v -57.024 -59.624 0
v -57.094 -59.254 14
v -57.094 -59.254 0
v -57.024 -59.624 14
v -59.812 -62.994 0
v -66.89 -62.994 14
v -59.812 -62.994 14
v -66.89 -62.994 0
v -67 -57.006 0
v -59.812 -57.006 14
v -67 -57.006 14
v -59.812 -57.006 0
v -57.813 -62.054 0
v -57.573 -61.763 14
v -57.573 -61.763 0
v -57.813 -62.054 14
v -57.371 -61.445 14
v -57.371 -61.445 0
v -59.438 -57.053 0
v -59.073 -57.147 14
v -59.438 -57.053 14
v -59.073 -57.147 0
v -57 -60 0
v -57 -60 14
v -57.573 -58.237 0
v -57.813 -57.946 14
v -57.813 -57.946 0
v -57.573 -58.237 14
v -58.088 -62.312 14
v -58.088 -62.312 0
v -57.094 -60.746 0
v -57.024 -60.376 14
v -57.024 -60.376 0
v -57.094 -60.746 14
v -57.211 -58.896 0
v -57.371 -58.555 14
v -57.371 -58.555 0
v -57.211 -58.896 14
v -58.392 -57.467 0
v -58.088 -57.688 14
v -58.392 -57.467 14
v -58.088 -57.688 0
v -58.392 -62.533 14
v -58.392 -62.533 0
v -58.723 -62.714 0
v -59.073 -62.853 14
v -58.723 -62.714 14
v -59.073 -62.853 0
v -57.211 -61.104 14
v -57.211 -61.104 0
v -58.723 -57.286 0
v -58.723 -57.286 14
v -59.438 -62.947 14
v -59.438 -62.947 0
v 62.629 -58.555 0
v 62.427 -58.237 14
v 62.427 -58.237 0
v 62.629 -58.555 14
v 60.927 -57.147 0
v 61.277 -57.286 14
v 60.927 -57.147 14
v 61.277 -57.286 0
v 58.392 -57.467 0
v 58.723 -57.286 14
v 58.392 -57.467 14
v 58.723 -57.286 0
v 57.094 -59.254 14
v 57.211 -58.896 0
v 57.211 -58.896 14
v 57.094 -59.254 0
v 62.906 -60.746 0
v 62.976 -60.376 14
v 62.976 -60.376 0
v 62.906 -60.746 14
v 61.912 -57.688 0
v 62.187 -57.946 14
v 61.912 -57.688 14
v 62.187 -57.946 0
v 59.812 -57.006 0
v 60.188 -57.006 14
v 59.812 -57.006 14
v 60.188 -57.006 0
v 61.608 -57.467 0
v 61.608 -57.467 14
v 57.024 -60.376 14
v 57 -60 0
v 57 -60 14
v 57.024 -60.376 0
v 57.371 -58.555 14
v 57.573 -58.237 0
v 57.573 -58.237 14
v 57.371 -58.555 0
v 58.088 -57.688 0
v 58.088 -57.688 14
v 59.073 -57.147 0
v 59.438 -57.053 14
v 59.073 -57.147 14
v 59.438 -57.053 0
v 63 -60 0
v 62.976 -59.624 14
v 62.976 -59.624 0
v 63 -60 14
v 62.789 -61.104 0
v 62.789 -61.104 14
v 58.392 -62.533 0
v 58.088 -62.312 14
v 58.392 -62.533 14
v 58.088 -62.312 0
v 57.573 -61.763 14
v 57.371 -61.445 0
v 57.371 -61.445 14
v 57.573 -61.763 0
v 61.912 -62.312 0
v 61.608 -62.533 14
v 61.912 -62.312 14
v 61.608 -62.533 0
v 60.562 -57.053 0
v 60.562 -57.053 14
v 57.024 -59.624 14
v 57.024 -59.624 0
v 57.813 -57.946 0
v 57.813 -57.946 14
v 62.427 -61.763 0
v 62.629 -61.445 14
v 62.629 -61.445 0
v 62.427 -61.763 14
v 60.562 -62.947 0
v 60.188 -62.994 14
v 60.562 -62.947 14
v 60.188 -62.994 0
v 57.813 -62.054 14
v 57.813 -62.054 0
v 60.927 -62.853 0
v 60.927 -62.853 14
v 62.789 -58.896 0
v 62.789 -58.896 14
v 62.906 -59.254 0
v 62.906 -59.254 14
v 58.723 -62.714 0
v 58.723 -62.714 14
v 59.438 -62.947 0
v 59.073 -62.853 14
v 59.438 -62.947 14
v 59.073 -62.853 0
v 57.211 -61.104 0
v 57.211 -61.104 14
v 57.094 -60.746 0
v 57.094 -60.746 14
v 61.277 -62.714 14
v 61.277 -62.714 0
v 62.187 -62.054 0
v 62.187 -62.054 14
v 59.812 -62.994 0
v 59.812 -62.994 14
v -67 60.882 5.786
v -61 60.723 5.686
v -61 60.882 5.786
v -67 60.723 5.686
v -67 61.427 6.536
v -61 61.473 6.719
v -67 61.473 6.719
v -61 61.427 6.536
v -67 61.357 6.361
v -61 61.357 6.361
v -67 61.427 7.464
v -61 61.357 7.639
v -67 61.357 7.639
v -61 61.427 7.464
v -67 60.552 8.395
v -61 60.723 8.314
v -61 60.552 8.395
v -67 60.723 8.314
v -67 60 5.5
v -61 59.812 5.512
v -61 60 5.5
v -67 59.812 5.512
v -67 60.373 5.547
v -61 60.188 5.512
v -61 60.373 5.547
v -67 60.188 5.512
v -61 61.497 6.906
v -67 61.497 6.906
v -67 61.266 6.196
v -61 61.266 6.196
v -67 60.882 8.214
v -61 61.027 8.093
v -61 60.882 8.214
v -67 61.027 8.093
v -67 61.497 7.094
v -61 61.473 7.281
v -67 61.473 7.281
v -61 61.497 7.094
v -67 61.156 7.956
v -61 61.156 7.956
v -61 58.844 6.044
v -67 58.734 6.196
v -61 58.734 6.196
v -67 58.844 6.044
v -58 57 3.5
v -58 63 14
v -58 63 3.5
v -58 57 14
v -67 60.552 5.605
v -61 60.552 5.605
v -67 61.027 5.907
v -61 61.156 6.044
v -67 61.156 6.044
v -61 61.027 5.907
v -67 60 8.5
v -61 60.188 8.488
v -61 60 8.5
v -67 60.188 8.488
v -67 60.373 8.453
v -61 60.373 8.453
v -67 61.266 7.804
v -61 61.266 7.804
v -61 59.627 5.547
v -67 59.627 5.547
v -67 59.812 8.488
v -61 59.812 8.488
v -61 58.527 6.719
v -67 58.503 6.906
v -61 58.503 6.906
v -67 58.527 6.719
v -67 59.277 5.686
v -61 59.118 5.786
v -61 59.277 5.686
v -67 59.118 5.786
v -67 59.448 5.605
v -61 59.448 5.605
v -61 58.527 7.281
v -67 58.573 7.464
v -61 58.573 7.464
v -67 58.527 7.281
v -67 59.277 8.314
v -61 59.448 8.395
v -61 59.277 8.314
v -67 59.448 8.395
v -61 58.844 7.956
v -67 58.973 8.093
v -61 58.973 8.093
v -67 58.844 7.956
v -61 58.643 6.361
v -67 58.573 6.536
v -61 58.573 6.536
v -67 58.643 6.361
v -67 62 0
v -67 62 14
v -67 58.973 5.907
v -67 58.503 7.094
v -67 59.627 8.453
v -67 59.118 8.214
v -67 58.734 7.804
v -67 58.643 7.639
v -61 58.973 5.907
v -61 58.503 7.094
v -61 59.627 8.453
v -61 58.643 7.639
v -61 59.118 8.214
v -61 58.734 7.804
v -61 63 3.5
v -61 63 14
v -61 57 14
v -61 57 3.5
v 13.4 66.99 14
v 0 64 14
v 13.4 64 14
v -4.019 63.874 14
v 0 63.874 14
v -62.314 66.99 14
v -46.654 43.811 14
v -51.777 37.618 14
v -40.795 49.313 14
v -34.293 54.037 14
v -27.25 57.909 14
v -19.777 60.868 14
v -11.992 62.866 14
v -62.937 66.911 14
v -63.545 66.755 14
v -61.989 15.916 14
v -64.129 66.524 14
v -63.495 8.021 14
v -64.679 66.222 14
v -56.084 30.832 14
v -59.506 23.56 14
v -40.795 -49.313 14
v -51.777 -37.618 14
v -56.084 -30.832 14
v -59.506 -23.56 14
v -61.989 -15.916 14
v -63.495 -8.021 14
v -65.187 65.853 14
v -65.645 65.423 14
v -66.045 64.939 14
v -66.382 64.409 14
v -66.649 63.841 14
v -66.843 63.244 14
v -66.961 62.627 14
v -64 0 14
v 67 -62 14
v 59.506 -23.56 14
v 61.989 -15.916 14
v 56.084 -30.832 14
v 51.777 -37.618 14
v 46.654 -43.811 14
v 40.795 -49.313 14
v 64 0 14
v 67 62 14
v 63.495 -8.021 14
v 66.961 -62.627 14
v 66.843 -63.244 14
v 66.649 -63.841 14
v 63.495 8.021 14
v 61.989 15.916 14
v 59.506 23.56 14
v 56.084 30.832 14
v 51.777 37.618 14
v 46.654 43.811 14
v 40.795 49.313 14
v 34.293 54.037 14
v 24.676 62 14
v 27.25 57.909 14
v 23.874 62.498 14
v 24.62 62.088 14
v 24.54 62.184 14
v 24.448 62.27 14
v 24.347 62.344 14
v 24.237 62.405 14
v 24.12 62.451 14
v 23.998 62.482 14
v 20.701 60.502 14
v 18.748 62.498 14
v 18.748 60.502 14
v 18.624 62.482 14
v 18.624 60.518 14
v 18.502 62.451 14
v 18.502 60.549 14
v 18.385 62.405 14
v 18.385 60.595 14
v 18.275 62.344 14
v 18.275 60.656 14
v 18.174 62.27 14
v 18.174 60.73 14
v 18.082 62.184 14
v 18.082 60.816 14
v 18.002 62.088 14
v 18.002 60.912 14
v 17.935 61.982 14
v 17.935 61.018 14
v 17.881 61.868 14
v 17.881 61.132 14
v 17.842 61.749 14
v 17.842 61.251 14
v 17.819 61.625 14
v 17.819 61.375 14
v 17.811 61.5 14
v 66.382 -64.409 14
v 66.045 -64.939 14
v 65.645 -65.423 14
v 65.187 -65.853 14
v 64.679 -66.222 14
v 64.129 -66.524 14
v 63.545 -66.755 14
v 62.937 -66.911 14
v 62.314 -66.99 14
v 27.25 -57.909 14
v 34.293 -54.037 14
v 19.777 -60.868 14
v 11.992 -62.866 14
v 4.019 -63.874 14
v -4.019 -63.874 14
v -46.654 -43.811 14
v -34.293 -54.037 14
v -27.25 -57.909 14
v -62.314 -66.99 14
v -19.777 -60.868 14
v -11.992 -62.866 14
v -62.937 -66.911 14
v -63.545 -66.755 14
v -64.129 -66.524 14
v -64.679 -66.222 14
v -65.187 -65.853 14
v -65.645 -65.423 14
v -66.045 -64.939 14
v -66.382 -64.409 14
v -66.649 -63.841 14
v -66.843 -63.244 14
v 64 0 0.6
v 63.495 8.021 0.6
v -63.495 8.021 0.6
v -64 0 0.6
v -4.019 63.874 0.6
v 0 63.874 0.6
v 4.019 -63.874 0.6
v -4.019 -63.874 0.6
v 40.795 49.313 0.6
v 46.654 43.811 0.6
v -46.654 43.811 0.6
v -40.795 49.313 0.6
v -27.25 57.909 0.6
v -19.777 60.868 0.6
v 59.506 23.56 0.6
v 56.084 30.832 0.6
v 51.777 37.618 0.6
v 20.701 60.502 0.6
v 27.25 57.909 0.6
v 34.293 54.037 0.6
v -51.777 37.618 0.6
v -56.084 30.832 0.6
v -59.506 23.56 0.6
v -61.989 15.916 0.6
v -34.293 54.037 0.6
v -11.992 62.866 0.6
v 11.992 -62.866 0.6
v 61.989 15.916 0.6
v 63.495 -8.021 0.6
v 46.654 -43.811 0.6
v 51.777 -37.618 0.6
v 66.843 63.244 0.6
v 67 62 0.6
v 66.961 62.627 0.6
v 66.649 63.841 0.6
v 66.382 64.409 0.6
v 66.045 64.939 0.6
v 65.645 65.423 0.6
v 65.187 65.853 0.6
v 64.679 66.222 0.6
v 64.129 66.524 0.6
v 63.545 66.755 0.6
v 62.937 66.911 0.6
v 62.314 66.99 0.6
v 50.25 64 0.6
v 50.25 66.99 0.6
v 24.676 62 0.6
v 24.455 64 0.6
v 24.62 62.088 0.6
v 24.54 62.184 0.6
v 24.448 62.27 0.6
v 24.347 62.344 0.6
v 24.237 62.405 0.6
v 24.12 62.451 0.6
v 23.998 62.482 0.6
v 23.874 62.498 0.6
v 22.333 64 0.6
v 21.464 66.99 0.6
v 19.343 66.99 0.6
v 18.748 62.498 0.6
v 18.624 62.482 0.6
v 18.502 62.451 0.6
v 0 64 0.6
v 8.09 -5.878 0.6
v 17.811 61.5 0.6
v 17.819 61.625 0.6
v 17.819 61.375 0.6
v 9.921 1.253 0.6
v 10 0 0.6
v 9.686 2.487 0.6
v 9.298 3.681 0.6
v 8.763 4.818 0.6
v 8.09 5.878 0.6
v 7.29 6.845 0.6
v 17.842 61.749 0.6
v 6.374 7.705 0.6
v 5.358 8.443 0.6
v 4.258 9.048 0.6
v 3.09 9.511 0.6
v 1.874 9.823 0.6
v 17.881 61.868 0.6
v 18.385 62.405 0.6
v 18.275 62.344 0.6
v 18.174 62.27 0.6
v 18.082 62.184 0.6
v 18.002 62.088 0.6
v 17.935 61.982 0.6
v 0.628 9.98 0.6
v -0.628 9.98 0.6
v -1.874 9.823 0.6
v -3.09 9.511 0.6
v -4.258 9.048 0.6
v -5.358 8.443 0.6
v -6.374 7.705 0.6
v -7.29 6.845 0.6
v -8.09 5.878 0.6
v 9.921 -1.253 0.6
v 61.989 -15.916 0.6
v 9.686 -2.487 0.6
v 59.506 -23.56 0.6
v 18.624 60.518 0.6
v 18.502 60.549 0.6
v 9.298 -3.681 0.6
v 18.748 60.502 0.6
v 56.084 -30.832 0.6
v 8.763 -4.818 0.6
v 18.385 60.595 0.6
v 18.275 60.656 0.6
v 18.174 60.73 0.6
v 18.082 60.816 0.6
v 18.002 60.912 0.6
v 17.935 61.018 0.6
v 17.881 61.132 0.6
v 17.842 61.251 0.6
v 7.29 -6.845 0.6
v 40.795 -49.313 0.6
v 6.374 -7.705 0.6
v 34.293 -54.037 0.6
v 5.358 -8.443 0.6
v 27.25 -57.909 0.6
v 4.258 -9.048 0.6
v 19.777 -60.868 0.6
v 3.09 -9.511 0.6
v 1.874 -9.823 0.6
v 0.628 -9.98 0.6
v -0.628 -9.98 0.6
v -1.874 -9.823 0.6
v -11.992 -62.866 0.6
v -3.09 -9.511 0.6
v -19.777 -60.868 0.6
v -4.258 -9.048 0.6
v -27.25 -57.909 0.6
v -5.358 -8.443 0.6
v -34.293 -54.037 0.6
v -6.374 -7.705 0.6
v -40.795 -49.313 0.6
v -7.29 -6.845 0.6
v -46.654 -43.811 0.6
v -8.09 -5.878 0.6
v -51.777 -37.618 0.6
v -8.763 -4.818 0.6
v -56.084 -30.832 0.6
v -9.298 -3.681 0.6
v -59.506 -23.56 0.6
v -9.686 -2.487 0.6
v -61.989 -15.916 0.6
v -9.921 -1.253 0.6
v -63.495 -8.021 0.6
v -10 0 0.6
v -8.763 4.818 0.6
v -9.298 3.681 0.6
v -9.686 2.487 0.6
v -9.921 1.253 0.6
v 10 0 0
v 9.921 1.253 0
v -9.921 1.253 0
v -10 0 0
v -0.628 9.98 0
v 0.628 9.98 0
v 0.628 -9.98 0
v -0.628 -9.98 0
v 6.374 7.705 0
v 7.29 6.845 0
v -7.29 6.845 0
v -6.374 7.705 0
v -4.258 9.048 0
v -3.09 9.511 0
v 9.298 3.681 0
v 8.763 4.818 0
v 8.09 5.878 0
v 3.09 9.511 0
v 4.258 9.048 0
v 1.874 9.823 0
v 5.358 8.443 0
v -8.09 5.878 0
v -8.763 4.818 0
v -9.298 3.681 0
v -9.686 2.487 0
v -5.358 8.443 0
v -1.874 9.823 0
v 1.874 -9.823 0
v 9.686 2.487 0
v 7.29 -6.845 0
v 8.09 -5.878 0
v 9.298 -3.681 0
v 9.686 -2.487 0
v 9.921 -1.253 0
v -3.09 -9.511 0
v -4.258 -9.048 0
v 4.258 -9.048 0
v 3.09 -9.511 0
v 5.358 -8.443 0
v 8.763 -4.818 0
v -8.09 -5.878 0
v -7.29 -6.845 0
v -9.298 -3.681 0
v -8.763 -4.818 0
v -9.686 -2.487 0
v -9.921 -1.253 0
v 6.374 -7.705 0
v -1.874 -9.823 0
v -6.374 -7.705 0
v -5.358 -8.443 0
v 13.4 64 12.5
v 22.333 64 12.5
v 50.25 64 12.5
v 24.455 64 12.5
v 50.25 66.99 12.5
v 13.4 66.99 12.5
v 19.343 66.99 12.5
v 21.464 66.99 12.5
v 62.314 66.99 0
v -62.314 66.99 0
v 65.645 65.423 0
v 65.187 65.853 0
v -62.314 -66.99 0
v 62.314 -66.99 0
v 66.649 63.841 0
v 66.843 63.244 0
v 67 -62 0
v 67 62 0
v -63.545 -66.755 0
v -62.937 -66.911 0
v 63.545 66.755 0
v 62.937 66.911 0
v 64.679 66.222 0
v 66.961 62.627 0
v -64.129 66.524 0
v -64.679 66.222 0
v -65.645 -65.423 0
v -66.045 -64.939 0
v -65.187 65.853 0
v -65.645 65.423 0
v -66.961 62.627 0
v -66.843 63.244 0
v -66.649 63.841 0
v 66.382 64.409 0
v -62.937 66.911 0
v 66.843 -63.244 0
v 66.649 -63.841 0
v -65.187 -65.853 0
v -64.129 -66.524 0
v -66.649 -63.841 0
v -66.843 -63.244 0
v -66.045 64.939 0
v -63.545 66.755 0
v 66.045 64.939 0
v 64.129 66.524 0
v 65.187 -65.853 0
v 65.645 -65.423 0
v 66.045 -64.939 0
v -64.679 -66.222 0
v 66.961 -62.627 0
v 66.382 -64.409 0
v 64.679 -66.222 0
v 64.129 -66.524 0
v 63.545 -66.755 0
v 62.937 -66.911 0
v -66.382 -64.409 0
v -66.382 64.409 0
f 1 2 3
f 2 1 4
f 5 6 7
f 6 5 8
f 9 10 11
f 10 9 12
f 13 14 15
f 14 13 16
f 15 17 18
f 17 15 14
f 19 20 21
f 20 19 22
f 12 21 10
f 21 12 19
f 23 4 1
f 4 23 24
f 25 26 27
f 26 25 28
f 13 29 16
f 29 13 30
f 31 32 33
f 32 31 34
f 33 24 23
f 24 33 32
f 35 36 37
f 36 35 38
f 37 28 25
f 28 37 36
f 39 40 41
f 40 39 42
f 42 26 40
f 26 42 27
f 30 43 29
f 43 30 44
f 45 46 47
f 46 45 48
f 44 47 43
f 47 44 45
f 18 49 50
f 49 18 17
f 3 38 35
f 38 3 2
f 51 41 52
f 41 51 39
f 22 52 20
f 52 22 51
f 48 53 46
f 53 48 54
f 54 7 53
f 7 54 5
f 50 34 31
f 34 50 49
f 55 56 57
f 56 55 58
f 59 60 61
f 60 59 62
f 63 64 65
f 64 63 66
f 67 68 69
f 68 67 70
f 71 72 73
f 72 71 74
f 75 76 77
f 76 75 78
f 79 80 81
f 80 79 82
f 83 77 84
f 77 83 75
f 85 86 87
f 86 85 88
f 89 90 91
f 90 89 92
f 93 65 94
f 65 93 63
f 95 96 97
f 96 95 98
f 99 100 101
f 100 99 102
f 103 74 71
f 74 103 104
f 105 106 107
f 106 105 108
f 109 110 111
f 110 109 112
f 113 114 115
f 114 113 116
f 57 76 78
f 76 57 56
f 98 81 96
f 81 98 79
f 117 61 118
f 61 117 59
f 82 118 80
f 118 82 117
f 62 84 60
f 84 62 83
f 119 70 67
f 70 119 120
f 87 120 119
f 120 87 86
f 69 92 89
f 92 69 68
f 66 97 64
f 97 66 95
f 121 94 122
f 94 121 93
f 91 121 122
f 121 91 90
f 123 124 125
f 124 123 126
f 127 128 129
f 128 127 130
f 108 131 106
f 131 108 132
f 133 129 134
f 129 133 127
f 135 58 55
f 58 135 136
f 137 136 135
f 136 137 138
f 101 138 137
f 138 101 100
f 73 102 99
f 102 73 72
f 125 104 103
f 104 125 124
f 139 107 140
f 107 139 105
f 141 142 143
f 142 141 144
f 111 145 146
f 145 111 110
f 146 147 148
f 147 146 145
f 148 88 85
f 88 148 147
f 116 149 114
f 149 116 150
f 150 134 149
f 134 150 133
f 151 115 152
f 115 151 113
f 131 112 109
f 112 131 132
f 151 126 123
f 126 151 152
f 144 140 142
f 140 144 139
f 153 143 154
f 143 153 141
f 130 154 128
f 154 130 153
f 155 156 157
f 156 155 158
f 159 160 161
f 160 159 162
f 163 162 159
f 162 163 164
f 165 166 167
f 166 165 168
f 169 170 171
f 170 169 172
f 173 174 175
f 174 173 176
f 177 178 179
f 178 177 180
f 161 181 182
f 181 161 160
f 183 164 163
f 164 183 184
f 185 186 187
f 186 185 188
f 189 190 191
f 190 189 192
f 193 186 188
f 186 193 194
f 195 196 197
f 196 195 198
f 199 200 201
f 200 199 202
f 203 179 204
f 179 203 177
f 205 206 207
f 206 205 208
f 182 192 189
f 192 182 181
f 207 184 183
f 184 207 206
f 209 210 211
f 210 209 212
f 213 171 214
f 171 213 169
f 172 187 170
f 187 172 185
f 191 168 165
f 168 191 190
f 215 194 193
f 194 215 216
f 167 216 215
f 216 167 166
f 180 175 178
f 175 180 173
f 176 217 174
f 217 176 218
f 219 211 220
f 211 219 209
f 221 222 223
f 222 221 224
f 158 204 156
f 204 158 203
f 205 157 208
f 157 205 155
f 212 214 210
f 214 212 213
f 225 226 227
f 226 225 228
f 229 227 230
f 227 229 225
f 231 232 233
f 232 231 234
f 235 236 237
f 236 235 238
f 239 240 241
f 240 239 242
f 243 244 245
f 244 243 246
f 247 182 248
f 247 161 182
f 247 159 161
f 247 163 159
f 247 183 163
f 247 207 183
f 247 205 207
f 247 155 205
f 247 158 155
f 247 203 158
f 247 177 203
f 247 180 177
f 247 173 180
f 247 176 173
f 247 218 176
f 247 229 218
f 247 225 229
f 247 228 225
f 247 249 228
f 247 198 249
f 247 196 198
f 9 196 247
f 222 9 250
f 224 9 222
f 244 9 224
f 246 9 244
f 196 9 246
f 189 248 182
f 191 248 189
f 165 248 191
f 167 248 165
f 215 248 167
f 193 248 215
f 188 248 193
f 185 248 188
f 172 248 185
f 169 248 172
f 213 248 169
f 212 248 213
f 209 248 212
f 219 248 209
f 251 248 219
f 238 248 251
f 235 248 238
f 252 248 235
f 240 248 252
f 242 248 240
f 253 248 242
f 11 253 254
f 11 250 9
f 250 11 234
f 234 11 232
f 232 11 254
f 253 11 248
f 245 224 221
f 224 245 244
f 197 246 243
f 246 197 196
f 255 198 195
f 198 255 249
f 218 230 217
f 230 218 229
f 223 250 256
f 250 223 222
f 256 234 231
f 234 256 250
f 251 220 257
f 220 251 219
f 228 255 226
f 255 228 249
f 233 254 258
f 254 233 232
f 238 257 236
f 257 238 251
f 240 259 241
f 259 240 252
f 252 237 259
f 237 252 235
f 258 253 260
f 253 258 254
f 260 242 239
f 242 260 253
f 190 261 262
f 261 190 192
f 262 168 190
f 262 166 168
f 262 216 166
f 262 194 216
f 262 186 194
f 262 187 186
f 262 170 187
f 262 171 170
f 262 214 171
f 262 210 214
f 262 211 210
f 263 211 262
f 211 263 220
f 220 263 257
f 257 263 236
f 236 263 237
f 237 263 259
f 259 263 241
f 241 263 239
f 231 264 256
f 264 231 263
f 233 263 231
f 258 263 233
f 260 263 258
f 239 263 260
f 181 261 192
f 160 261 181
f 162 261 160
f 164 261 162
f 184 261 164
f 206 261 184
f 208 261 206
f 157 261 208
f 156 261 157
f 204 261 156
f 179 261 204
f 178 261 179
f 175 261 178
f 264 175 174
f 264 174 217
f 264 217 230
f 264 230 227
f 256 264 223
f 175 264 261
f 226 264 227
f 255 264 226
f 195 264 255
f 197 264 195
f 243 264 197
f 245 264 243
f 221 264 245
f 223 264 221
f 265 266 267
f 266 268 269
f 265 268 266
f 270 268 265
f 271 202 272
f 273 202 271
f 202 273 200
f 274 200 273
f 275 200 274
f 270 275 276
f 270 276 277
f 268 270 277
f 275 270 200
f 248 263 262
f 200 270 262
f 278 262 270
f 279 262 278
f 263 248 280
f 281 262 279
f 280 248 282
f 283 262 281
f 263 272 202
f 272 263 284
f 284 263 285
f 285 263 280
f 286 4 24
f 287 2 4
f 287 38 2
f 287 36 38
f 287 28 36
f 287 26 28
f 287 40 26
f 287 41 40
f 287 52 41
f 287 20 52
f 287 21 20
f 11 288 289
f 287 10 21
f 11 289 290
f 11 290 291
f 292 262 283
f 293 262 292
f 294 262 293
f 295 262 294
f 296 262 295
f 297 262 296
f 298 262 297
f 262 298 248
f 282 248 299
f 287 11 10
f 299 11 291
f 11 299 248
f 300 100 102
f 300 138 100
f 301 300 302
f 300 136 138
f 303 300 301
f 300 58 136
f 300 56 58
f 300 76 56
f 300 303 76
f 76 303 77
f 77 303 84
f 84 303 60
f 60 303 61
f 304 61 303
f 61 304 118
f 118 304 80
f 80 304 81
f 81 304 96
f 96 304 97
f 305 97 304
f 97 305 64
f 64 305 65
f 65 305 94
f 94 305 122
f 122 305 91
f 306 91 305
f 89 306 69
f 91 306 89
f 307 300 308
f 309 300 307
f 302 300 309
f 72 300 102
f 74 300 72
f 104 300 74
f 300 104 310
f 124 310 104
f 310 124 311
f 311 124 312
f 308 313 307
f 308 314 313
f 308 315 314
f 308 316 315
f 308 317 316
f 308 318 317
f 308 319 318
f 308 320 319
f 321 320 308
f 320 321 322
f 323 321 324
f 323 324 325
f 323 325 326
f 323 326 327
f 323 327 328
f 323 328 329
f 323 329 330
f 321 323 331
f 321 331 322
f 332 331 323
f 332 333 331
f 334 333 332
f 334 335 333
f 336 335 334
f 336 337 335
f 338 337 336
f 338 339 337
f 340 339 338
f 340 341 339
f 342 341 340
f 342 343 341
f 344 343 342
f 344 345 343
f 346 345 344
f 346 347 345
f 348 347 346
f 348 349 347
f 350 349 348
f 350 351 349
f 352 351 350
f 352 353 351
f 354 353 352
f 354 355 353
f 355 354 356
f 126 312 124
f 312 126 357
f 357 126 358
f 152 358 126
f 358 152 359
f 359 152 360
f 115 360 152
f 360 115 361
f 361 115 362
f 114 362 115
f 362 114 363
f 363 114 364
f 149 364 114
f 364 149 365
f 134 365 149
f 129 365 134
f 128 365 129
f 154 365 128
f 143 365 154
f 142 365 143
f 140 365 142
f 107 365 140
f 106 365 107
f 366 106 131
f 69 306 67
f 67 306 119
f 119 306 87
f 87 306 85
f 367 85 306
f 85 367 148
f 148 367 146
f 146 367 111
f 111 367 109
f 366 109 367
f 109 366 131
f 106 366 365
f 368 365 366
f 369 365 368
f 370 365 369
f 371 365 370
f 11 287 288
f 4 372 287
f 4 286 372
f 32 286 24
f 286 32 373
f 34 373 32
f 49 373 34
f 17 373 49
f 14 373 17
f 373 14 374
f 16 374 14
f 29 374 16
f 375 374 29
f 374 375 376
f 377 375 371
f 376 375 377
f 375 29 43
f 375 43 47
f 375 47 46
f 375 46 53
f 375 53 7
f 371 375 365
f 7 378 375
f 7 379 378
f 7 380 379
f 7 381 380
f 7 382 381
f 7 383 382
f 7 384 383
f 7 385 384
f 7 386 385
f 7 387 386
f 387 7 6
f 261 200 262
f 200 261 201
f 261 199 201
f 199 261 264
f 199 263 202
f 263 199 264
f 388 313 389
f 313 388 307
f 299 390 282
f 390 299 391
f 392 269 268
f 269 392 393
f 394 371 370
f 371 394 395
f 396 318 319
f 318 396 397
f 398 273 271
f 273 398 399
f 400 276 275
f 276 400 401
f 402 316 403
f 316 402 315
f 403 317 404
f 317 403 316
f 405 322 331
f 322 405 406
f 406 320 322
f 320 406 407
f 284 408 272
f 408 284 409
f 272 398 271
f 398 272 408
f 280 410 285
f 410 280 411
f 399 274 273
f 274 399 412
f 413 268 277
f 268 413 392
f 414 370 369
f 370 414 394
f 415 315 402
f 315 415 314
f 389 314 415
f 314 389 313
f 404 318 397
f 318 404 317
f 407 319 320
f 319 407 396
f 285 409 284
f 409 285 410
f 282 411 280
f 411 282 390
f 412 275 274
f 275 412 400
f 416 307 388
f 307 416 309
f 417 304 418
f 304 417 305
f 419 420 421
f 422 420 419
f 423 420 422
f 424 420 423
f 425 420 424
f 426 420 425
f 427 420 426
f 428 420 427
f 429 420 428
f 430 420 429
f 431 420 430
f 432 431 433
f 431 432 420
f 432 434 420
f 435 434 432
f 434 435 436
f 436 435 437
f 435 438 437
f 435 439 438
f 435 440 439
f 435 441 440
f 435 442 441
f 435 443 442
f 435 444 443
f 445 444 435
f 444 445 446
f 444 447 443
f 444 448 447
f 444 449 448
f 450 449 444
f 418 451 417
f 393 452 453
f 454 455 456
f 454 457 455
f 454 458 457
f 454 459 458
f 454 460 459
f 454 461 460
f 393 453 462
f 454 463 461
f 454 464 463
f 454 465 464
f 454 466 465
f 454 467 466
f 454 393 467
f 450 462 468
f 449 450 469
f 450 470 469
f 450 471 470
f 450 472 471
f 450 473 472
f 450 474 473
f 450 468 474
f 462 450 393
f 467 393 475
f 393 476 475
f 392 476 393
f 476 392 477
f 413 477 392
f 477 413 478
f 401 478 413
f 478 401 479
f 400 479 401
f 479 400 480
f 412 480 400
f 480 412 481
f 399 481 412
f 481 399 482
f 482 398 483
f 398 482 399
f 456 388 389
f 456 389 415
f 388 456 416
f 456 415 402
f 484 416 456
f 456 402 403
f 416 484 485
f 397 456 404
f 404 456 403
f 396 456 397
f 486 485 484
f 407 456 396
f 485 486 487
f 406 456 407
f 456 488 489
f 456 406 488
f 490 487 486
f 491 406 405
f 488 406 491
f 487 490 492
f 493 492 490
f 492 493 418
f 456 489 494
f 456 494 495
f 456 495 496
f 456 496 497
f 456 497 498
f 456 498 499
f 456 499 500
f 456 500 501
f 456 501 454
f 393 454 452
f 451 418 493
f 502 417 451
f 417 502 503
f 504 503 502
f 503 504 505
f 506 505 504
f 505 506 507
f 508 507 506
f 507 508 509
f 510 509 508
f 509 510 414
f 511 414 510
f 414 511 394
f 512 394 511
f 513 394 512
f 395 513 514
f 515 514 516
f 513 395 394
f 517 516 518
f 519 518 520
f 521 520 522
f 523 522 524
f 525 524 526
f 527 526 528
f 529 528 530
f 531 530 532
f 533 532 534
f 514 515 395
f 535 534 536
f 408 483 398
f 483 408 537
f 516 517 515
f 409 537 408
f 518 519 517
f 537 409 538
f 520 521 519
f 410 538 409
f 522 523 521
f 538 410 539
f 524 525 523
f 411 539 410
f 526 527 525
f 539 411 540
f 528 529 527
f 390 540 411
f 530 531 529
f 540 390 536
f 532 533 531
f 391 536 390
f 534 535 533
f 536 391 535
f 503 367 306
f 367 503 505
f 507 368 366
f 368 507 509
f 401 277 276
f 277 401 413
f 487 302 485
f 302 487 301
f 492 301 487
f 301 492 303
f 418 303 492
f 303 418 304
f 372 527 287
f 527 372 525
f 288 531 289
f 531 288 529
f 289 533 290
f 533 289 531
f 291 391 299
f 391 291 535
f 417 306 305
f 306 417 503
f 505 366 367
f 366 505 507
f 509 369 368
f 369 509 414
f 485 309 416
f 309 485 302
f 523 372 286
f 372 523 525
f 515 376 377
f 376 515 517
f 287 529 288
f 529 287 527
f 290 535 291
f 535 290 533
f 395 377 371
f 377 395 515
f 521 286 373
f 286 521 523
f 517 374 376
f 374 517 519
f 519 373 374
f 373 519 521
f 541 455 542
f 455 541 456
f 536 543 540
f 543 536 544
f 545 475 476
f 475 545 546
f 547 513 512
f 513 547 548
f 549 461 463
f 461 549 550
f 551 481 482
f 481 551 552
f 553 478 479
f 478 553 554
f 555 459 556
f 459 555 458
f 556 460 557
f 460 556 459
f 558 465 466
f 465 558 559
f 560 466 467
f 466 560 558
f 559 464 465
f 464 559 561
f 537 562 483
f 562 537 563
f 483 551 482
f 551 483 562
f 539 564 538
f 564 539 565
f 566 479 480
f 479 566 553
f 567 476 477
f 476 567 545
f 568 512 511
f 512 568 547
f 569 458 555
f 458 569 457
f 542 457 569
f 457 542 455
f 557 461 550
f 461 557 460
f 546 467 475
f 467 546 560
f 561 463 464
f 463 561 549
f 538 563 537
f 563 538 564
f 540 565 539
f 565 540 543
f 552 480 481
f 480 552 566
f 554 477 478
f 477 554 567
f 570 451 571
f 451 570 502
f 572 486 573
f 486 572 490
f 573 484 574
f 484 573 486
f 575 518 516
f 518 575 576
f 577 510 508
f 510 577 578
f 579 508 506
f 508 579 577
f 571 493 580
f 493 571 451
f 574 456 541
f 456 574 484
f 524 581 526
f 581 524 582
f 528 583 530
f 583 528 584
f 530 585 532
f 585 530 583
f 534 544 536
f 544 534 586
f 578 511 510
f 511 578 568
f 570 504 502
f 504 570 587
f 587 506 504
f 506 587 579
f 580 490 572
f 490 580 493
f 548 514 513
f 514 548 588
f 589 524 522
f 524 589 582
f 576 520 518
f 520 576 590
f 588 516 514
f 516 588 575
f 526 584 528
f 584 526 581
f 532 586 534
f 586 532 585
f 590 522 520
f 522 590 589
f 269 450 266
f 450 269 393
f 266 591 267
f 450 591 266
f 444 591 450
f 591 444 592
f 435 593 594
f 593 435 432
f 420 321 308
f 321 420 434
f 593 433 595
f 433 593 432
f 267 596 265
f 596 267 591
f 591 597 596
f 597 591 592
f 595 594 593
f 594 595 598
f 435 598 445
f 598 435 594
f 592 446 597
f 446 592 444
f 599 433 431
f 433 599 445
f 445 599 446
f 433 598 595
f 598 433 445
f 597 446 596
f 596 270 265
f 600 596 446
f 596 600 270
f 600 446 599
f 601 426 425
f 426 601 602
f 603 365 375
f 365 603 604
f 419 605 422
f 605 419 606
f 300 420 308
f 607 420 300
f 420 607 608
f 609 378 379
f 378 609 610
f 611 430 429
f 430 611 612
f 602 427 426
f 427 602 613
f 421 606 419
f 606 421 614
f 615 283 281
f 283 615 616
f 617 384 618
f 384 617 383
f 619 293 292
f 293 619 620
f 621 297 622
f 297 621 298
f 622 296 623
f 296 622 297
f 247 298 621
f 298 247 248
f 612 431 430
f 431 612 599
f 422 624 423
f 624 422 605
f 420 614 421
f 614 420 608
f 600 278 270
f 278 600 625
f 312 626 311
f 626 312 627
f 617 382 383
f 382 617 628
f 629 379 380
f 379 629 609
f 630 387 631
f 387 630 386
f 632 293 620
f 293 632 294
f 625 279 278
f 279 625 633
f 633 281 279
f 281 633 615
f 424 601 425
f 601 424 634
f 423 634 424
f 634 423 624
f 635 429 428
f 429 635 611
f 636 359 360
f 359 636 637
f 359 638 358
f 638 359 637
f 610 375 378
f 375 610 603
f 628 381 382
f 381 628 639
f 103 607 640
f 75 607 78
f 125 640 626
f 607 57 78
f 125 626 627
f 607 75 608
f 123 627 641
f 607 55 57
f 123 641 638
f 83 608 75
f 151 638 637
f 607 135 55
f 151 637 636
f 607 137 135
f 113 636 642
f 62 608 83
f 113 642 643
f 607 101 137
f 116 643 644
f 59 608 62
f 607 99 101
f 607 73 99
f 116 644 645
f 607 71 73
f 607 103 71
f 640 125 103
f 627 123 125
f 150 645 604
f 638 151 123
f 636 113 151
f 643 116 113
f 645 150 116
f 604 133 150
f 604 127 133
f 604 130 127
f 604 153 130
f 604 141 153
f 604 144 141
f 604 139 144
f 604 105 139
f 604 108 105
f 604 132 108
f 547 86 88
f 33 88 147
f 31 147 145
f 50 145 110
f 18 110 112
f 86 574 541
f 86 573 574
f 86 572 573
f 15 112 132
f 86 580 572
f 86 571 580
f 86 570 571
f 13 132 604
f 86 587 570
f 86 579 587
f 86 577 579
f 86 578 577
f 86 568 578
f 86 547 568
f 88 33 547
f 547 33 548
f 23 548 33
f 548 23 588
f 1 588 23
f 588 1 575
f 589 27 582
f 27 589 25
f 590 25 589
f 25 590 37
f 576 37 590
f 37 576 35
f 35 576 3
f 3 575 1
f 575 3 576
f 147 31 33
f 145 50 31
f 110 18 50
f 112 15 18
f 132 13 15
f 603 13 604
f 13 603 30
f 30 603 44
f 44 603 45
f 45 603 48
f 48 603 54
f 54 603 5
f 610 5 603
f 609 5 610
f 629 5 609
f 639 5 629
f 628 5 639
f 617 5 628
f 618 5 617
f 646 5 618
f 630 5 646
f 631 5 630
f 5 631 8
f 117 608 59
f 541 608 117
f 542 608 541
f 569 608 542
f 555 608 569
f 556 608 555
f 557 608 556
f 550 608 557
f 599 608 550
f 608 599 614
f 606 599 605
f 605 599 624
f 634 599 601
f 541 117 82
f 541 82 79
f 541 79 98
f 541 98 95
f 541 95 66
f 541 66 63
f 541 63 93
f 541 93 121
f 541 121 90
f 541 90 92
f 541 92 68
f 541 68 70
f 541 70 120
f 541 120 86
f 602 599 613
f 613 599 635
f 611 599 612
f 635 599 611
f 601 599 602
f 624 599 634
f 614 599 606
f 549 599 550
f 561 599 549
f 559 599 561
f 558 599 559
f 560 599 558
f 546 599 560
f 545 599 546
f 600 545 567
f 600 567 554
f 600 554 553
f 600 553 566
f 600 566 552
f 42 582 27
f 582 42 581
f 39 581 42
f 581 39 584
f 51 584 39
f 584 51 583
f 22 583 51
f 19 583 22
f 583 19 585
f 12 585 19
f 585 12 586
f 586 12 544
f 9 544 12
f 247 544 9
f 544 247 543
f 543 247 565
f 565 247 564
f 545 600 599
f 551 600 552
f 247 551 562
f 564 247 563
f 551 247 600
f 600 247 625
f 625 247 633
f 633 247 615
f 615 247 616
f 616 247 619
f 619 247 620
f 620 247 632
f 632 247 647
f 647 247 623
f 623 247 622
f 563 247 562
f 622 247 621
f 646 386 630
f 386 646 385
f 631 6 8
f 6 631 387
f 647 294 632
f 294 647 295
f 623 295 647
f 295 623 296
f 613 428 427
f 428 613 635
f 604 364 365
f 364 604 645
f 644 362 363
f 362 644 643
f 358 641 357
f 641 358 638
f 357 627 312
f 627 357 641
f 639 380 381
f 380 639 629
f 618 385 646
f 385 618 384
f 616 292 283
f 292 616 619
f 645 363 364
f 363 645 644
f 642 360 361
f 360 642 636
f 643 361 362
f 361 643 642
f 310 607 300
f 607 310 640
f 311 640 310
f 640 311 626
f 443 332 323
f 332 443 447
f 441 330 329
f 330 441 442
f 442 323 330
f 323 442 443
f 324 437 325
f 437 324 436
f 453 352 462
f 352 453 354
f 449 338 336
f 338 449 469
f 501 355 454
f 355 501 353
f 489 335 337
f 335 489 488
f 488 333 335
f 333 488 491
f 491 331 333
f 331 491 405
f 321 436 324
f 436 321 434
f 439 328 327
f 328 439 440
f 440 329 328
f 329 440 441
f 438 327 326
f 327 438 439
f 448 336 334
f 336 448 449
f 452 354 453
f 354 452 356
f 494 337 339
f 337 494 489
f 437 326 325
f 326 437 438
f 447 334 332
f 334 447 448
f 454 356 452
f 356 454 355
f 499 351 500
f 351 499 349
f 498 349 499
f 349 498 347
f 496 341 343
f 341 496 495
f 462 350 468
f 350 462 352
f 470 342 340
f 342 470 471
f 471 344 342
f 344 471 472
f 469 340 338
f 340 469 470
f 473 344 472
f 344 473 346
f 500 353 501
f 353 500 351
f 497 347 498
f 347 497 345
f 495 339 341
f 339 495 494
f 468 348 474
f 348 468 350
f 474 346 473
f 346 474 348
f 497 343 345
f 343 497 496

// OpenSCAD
$fn = 50;


union() {
	difference() {
		union() {
			translate(v = [0, 0, 0]) {
				rotate(a = [0, 0, 0]) {
					hull() {
						translate(v = [-62.0000000000, 62.0000000000, 0]) {
							rotate(a = [0, 0, 0]) {
								translate(v = [0, 0, 0]) {
									rotate(a = [0, 0, 0]) {
										cylinder(h = 14, r = 5);
									}
								}
							}
						}
						translate(v = [62.0000000000, 62.0000000000, 0]) {
							rotate(a = [0, 0, 0]) {
								translate(v = [0, 0, 0]) {
									rotate(a = [0, 0, 0]) {
										cylinder(h = 14, r = 5);
									}
								}
							}
						}
						translate(v = [-62.0000000000, -62.0000000000, 0]) {
							rotate(a = [0, 0, 0]) {
								translate(v = [0, 0, 0]) {
									rotate(a = [0, 0, 0]) {
										cylinder(h = 14, r = 5);
									}
								}
							}
						}
						translate(v = [62.0000000000, -62.0000000000, 0]) {
							rotate(a = [0, 0, 0]) {
								translate(v = [0, 0, 0]) {
									rotate(a = [0, 0, 0]) {
										cylinder(h = 14, r = 5);
									}
								}
							}
						}
					}
				}
			}
		}
		union() {
			translate(v = [-67.5000000000, -60.0000000000, -125]) {
				rotate(a = [0, 0, 0]) {
					hull() {
						translate(v = [7.5000000000, 0, 0]) {
							rotate(a = [0, 0, 0]) {
								translate(v = [0, 0, 0]) {
									rotate(a = [0, 0, 0]) {
										cylinder(h = 250, r = 3.0000000000);
									}
								}
							}
						}
						translate(v = [-7.5000000000, 0, 0]) {
							rotate(a = [0, 0, 0]) {
								translate(v = [0, 0, 0]) {
									rotate(a = [0, 0, 0]) {
										cylinder(h = 250, r = 3.0000000000);
									}
								}
							}
						}
					}
				}
			}
			translate(v = [60.0000000000, -60.0000000000, -125.0000000000]) {
				rotate(a = [0, 0, 0]) {
					cylinder(h = 250, r = 3.0000000000);
				}
			}
			translate(v = [-67.0000000000, 60.0000000000, 7.0000000000]) {
				rotate(a = [0, 90, 0]) {
					cylinder(h = 9, r = 1.5000000000);
				}
			}
			translate(v = [-61.0000000000, 57.0000000000, 3.5000000000]) {
				rotate(a = [0, 0, 0]) {
					cube(size = [3, 6, 10.5000000000]);
				}
			}
			translate(v = [0, 0, 0.6000000000]) {
				rotate(a = [0, 0, 0]) {
					cylinder(h = 16.4000000000, r = 64.0000000000);
				}
			}
			translate(v = [0, 0, -7.0000000000]) {
				rotate(a = [0, 0, 0]) {
					cylinder(h = 14, r = 10.0000000000);
				}
			}
			translate(v = [0.0000000000, 62.0000000000, 0.6000000000]) {
				rotate(a = [0, 0, 0]) {
					cube(size = [67.0000000000, 2, 16.4000000000]);
				}
			}
			translate(v = [50.2500000000, 62.0000000000, 0.6000000000]) {
				rotate(a = [0, 0, 0]) {
					cube(size = [16.7500000000, 5, 16.4000000000]);
				}
			}
			translate(v = [13.4000000000, 62.0000000000, 12.5000000000]) {
				rotate(a = [0, 0, 0]) {
					cube(size = [53.6000000000, 5, 1.5000000000]);
				}
			}
			translate(v = [18.5833333333, 67.7500000000, 0.6000000000]) {
				rotate(a = [0, 0, -45]) {
					cube(size = [7.5000000000, 1.5000000000, 16.4000000000]);
				}
			}
			translate(v = [12.0610000000, 60.5000000000, 0.6000000000]) {
				rotate(a = [0, 0, 0]) {
					cube(size = [7.5000000000, 2, 13.4000000000]);
				}
			}
		}
	}
	union() {
		translate(v = [21.3110000000, 61.5000000000, 0]) {
			rotate(a = [0, 0, 0]) {
				hull() {
					translate(v = [2.5000000000, 0, 0]) {
						rotate(a = [0, 0, 0]) {
							translate(v = [0, 0, 0]) {
								rotate(a = [0, 0, 0]) {
									cylinder(h = 14, r = 1.0000000000);
								}
							}
						}
					}
					translate(v = [-2.5000000000, 0, 0]) {
						rotate(a = [0, 0, 0]) {
							translate(v = [0, 0, 0]) {
								rotate(a = [0, 0, 0]) {
									cylinder(h = 14, r = 1.0000000000);
								}
							}
						}
					}
				}
			}
		}
	}
}
